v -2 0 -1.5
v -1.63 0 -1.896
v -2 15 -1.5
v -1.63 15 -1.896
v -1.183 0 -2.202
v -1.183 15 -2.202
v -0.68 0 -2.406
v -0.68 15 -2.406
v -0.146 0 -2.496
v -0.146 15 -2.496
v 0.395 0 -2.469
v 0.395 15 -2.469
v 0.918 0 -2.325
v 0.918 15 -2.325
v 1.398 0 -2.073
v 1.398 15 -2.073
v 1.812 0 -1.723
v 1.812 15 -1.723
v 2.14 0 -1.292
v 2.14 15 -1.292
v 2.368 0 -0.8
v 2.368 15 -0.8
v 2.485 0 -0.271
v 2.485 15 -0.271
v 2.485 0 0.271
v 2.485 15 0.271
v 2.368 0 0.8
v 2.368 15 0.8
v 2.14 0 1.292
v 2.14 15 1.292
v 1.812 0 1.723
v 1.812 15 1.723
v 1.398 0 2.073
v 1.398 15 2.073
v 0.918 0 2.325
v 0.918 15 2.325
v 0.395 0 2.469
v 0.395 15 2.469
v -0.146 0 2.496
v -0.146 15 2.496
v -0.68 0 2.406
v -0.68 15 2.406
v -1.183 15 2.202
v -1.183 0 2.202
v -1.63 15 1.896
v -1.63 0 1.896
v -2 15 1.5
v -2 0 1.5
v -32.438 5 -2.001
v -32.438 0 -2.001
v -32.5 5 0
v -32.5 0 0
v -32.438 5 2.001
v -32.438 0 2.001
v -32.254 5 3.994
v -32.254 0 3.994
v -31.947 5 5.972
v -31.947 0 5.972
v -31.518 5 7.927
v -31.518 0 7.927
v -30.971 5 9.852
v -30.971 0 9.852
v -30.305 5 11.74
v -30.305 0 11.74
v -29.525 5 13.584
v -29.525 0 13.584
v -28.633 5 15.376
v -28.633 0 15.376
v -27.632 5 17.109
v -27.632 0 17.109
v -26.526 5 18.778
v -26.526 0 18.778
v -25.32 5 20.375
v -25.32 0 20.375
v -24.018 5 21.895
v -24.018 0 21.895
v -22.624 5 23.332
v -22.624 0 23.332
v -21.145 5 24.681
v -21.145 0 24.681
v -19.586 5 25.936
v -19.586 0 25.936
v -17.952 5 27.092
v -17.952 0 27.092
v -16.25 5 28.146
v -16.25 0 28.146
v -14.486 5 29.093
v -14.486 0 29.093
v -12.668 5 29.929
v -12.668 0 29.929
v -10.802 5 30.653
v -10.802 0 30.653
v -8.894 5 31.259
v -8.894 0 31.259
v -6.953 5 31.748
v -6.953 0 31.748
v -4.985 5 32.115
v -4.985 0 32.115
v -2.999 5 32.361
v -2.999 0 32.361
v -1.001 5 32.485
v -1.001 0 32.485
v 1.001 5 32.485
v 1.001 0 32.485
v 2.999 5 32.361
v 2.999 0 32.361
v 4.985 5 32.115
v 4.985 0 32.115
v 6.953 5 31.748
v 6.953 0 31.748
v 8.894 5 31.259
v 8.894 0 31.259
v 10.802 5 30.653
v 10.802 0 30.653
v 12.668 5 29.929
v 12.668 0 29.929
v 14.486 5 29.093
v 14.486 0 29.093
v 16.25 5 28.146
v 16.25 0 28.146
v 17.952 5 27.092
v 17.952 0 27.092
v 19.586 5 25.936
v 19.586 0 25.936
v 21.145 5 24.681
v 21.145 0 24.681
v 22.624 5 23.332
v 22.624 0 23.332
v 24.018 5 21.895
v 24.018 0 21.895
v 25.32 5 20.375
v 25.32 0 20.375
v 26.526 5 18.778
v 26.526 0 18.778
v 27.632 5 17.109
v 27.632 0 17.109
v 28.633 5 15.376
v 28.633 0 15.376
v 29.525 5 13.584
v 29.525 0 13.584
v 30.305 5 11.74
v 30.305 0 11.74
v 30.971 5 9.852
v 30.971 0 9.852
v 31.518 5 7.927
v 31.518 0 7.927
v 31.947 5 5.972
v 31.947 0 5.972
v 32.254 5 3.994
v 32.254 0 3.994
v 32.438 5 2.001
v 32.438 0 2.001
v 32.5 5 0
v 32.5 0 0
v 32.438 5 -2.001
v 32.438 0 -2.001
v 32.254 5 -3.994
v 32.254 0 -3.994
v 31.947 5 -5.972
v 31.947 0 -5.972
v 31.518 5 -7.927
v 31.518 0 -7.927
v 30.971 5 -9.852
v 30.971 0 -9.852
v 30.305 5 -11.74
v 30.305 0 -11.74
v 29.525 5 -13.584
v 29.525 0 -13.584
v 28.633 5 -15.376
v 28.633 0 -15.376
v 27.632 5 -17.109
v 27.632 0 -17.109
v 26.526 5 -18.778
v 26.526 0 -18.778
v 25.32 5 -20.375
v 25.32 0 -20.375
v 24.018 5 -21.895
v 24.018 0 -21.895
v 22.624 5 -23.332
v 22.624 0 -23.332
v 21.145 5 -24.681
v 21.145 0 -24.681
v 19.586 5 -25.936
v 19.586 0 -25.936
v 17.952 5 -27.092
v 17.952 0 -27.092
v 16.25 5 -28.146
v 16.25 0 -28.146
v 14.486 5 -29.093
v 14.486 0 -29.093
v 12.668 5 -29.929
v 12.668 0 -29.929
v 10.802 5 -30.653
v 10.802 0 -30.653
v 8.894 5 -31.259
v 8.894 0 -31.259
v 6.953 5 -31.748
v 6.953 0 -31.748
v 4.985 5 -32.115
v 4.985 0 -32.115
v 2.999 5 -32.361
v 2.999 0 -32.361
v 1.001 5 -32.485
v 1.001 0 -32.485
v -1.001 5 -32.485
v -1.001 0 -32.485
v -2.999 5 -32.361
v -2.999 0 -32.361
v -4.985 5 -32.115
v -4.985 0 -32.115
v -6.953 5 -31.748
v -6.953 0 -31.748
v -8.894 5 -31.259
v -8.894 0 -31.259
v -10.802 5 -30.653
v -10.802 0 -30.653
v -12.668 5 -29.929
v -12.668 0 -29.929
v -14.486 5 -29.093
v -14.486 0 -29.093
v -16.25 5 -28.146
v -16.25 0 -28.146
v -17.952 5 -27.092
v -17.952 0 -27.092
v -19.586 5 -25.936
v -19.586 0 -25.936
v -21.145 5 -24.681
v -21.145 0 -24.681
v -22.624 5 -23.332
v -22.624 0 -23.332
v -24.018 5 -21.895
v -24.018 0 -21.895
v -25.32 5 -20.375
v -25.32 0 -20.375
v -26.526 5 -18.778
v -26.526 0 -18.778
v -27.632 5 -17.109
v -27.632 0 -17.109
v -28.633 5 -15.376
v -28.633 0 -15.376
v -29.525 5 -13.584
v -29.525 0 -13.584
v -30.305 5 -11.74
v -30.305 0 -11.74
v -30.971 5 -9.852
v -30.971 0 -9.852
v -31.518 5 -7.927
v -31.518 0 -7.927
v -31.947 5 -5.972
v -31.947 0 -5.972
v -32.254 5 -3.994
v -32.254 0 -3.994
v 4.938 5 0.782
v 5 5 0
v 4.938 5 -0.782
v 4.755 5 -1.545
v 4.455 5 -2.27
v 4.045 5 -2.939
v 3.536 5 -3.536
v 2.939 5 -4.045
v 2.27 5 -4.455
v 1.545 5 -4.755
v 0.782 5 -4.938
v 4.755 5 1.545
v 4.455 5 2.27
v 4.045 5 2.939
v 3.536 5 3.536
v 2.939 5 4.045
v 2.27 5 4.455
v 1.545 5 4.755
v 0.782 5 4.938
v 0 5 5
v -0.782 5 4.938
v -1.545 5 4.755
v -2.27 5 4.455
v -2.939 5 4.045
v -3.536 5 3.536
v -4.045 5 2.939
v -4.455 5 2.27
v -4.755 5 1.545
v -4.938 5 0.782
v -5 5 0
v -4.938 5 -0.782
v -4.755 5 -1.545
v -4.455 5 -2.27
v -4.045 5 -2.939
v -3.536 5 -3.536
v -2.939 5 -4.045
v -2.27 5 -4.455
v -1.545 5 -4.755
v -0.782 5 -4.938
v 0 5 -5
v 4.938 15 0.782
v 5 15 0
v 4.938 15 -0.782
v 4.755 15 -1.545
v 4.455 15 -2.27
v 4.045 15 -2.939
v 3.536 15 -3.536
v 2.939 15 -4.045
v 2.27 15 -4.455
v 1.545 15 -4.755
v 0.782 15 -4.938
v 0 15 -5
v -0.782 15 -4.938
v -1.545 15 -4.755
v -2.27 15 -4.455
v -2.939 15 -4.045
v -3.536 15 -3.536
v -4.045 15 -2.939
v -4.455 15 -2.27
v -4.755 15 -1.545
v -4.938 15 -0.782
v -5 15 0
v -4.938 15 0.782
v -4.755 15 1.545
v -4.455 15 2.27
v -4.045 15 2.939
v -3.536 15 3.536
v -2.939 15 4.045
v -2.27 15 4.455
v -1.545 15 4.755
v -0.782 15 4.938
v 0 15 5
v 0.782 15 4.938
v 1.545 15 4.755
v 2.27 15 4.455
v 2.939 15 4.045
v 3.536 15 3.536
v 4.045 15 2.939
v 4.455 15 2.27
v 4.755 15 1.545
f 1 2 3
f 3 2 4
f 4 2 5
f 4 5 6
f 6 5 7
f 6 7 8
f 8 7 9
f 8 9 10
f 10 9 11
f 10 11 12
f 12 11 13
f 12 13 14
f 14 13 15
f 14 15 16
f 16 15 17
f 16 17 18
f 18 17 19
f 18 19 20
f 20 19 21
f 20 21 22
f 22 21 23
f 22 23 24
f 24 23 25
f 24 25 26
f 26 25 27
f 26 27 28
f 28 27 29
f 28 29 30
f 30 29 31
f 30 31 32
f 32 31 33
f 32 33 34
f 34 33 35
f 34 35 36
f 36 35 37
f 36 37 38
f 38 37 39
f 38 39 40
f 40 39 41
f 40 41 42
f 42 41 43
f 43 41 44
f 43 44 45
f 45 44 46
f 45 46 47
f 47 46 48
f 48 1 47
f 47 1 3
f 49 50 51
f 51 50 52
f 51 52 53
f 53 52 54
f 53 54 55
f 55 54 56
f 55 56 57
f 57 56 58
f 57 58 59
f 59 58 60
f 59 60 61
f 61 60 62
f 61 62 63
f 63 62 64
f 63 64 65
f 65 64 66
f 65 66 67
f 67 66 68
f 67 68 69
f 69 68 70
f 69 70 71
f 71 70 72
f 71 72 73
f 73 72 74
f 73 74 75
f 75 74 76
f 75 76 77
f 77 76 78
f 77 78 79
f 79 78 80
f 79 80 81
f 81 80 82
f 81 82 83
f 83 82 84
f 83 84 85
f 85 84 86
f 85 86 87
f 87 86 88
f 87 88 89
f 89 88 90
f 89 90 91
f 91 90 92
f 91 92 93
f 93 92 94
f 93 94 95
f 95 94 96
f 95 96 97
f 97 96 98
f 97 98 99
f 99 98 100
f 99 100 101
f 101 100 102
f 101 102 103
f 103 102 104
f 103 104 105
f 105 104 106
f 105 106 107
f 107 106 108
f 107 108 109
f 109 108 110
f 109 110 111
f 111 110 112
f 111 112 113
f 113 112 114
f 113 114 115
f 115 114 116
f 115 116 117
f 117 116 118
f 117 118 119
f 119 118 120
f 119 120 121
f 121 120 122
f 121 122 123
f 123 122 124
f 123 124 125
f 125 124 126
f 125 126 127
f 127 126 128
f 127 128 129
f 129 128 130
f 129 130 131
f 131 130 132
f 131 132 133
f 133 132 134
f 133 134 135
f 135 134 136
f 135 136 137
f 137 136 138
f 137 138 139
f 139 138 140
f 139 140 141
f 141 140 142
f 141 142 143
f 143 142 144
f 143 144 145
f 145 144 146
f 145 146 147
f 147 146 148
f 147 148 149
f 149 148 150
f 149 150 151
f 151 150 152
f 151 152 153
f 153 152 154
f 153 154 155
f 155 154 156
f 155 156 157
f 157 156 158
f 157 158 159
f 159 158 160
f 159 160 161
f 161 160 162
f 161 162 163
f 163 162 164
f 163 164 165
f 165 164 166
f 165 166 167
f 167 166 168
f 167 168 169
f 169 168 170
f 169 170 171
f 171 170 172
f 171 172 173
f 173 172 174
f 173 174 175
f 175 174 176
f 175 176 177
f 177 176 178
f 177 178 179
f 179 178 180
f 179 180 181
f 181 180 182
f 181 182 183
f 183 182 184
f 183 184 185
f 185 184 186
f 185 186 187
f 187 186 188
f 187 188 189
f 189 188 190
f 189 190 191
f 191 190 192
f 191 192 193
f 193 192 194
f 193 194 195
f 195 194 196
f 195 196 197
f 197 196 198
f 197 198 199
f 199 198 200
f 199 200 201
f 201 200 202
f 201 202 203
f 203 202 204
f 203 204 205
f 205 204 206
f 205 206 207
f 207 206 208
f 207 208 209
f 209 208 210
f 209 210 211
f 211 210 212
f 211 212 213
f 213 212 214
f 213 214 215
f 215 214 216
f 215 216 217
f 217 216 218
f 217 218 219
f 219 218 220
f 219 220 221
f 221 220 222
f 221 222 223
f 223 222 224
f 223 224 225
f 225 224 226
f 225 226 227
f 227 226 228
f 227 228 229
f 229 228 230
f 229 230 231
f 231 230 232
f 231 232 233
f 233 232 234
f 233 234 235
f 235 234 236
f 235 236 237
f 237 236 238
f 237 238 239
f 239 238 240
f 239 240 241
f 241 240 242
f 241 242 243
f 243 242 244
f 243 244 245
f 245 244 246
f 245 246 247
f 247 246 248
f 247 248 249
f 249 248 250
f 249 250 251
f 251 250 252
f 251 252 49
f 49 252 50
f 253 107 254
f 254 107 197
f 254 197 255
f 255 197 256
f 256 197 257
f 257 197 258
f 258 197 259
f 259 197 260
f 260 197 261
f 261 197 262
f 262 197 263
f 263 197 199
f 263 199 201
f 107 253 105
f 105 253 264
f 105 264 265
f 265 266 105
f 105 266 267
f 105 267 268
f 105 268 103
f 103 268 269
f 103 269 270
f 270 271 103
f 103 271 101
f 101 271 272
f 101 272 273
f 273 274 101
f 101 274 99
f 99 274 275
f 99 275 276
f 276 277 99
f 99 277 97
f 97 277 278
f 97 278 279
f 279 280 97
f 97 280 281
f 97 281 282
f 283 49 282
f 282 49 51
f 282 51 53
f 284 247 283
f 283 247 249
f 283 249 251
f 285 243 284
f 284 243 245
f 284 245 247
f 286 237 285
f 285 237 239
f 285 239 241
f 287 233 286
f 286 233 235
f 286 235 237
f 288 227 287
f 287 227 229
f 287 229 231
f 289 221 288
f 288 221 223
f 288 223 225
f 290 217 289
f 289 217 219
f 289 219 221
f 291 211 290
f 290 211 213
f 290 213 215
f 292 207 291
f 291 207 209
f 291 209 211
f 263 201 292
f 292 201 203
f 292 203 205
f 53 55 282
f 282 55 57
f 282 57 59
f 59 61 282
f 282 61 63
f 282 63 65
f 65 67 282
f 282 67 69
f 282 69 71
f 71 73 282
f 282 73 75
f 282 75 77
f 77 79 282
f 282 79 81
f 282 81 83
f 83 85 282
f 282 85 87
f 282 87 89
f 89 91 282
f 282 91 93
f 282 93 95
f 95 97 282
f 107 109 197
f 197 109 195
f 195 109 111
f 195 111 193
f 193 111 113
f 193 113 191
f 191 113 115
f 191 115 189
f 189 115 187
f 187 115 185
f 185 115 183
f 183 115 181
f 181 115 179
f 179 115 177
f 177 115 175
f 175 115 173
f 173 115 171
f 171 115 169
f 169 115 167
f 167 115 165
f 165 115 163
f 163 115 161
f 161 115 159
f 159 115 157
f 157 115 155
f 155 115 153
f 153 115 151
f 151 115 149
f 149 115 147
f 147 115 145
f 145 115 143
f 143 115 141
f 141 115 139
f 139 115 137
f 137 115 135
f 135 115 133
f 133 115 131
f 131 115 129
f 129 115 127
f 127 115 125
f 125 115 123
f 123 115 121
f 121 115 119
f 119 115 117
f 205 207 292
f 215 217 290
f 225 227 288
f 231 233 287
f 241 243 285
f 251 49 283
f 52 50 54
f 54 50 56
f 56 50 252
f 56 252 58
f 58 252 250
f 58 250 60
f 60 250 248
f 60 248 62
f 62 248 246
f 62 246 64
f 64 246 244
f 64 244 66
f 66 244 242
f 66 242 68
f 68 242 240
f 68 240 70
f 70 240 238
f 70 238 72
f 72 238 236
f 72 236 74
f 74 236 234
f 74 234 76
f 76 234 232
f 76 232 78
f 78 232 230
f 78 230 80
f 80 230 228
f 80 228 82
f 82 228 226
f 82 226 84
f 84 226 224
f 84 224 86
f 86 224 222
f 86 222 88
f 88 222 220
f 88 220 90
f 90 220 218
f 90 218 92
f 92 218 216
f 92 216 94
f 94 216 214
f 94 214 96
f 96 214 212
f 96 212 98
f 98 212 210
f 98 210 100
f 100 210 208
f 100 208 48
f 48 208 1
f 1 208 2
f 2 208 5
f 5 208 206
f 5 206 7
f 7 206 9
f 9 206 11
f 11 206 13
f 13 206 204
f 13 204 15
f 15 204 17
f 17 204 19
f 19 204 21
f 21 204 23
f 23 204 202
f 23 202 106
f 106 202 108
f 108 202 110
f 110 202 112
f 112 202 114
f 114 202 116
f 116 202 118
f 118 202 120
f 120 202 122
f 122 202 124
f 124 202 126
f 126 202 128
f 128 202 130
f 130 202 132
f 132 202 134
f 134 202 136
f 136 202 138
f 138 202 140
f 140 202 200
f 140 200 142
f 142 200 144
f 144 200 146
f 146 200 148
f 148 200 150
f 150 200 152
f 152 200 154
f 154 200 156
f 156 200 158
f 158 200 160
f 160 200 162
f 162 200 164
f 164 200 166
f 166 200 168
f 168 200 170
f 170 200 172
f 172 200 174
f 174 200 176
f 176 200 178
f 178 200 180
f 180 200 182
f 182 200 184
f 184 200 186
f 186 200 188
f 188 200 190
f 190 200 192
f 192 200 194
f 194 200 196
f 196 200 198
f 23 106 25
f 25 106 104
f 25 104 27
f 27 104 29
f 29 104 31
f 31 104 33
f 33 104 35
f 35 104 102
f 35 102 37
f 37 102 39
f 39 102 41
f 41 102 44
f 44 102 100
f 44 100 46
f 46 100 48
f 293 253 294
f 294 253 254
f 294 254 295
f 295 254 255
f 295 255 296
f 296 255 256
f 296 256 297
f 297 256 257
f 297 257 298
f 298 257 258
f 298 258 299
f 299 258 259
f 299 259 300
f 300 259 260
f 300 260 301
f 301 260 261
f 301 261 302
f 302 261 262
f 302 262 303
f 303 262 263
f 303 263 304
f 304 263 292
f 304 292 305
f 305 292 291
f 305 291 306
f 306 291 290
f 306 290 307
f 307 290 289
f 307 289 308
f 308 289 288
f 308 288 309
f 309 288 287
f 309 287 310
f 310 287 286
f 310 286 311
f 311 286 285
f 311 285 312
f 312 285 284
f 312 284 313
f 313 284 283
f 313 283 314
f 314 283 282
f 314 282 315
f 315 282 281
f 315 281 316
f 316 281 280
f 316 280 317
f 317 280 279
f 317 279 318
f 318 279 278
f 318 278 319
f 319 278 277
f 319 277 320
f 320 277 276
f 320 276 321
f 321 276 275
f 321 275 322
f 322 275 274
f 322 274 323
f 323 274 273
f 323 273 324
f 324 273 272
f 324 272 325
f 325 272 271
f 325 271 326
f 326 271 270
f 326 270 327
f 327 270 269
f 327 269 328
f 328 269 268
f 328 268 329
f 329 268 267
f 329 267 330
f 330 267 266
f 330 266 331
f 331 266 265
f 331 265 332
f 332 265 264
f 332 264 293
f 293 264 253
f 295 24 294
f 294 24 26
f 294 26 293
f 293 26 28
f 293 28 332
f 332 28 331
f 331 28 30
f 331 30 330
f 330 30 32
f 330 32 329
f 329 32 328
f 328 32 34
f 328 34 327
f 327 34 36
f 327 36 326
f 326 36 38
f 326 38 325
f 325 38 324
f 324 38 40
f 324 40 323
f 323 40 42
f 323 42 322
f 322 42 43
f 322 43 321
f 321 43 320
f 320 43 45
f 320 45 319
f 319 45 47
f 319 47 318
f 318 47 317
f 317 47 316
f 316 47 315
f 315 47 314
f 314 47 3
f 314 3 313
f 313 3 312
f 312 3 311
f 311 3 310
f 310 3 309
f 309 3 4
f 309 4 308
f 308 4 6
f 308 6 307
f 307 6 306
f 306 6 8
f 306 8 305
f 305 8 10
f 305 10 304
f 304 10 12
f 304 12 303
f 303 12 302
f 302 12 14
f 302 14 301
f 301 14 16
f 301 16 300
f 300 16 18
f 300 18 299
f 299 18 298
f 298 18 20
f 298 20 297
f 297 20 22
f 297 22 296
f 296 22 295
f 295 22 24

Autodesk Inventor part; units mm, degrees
ref_plane "YZ Plane" through (0, 0, 0) normal (1, 0, 0) x (0, 1, 0)
ref_plane "XZ Plane" through (0, 0, 0) normal (0, 1, 0) x (-1, 0, 0)
ref_plane "XY Plane" through (0, 0, 0) normal (0, 0, 1) x (1, 0, 0)
sketch "Sketch1" plane through (0, 0, 0) normal (0, 1, 0) x (-1, 0, 0)
  circle A0 centre (0, 0) radius 32.5
  arc A1 (2, 1.5) -> (2, -1.5) centre (0, 0) ccw
  line L0 (-2.5, 0) -> (2, 0) construction
  line L1 (2, 0) -> (2, 1.5)
  line L2 (2, -1.5) -> (2, 0)
  dimension "d0" = 65
extrude "Extrusion1" add sketch "Sketch1" along normal blind 5
sketch "Sketch2" plane through (0, 5, 0) normal (0, 1, 0) x (1, 0, 0)
  circle A0 centre (0, 0) radius 5
  arc A1 (-2, -1.5) -> (-2, 1.5) centre (0, 0) ccw projected
  arc A2 (-2, -1.5) -> (-2, 1.5) centre (0, 0) ccw
  line L0 (-2, -1.5) -> (-2, 1.5) projected
  line L1 (-2, -1.5) -> (-2, 1.5)
  dimension "d6" = 10
extrude "Extrusion2" add sketch "Sketch2" along normal blind 10
properties part number "kolo"
